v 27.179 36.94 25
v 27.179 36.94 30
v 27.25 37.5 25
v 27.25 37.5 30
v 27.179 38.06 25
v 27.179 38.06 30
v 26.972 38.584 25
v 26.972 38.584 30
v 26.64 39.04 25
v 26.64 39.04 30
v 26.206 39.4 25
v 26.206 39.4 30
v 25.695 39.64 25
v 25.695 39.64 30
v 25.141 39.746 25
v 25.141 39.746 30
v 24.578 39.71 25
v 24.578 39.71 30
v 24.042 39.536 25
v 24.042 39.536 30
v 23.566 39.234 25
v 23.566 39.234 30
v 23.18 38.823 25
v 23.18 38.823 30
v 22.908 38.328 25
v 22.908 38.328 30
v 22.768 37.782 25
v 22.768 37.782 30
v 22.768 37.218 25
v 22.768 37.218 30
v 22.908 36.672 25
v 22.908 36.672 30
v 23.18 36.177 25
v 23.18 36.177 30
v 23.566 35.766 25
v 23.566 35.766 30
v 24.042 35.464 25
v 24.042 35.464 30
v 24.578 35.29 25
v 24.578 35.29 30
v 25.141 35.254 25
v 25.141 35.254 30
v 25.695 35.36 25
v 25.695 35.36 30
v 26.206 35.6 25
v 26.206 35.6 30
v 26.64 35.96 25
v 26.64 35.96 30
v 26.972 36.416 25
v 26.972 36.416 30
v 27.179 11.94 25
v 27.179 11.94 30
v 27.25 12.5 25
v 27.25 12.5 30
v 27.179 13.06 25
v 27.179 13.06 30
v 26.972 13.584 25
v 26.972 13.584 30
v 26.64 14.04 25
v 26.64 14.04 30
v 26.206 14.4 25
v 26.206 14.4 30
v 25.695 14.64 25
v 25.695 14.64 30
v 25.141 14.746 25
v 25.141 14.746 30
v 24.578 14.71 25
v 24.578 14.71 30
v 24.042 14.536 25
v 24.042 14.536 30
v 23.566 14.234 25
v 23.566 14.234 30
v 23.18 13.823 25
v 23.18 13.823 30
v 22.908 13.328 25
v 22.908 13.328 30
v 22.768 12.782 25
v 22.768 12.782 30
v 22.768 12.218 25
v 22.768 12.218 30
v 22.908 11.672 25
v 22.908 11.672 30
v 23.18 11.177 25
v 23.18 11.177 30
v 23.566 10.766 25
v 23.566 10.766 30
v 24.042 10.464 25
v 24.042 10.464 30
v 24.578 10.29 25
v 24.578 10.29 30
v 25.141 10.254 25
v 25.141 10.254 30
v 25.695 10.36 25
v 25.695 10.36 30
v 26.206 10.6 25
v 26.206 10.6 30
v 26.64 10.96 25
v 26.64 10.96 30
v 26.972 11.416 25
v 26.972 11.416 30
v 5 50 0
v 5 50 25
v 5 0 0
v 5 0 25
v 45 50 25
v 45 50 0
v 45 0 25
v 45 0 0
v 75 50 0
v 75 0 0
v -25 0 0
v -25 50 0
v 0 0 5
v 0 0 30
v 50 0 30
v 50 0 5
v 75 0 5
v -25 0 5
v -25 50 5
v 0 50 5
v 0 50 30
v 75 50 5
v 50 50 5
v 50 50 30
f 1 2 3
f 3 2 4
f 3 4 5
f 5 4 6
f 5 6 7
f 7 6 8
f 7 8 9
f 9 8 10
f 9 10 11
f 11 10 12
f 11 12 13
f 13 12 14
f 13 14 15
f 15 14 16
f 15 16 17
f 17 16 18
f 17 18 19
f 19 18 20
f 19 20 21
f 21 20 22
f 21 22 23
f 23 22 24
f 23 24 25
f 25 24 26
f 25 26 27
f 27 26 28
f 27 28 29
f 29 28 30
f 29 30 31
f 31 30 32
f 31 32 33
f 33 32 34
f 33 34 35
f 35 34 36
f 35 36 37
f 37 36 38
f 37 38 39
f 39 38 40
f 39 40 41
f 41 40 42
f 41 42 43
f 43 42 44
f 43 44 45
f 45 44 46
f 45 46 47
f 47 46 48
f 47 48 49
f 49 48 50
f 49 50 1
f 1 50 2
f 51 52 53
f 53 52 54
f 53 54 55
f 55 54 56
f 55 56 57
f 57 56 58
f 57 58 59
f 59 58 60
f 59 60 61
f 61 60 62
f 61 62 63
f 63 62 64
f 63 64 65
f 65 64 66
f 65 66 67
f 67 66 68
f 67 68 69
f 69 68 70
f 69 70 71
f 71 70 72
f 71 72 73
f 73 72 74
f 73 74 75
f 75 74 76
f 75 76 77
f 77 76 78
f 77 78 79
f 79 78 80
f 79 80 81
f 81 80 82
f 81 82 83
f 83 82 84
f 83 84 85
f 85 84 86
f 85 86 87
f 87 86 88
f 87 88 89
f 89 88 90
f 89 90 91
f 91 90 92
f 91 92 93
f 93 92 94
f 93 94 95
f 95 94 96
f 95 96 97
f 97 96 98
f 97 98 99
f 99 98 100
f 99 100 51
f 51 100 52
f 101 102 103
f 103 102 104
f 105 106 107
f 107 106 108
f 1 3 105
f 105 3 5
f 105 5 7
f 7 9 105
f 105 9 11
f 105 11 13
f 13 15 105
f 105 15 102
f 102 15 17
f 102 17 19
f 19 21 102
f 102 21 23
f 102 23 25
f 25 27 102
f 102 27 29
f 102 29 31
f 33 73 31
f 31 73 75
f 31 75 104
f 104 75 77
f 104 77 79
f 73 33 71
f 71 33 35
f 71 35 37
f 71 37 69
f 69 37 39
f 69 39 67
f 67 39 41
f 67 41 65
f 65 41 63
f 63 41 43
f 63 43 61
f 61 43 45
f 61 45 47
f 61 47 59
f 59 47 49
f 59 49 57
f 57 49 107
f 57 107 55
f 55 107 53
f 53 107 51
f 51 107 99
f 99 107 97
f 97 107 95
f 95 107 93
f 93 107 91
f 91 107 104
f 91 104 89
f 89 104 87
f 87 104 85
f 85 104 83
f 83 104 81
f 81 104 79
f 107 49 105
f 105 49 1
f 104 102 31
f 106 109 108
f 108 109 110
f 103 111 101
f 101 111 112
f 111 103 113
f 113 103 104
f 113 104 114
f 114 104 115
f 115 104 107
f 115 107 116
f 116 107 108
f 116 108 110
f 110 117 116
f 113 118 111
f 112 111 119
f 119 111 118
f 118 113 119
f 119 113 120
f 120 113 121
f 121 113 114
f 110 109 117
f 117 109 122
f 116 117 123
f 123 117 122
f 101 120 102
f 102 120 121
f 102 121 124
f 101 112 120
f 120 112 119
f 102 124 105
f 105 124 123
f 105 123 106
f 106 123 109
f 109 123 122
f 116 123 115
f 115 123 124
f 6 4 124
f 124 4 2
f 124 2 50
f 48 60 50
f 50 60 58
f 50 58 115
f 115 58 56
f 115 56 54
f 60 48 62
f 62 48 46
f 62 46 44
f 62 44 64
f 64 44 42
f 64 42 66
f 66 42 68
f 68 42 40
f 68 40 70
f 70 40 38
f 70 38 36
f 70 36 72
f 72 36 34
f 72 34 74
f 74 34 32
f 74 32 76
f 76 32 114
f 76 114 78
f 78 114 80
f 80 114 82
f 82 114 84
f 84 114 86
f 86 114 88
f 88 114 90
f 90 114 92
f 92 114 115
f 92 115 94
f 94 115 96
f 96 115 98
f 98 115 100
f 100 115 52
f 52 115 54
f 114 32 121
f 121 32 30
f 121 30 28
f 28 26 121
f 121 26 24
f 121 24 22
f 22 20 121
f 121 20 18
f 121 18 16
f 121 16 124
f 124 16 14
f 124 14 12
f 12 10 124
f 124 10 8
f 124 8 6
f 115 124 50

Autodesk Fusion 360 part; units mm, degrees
sketch "Sketch9" plane through (0, 0, 0) normal (0, 0, 1) x (1, 0, 0)
  line L0 (0, 50) -> (50, 50)
  line L1 (50, 50) -> (50, 0)
  line L2 (50, 0) -> (0, 0)
  line L3 (0, 0) -> (0, 50)
  line L4 (-25, 50) -> (0, 50)
  line L5 (0, 50) -> (0, 0)
  line L6 (0, 0) -> (-25, 0)
  line L7 (-25, 0) -> (-25, 50)
  line L8 (50, 50) -> (75, 50)
  line L9 (75, 50) -> (75, 0)
  line L10 (75, 0) -> (50, 0)
  line L11 (50, 0) -> (50, 50)
  dimension "d34" = 50
  dimension "d35" = 50
  dimension "d36" = 25
  dimension "d37" = 50
extrude "Extrude5" add sketch "Sketch9" along normal blind 30 contours L0 L1 L2 L3 L5 L11
extrude "Extrude6" add sketch "Sketch9" along normal blind 5 contours L1 L8 L9 L10 L11
extrude "Extrude7" add sketch "Sketch9" along normal blind 5 contours L3 L4 L5 L6 L7
sketch "Sketch12" plane through (0, 0, 0) normal (0, 1, 0) x (1, 0, 0)
  line L0 (5, -25) -> (45, -25)
  line L1 (45, -25) -> (45, 0)
  line L2 (45, 0) -> (5, 0)
  line L3 (5, 0) -> (5, -25)
  line L4 (50, 0) -> (0, 0)
  line L5 (75, 0) -> (-25, 0)
  line L6 (-25, 0) -> (75, 0)
  line L7 (0, -30) -> (50, -30)
  line L8 (0, -5) -> (0, -30)
  line L9 (50, -5) -> (50, -30)
  dimension "d44" = 5
  dimension "d45" = 5
  dimension "d46" = 5
extrude "Extrude8" cut sketch "Sketch12" along normal through all
sketch "Sketch13" plane through (0, 0, 30) normal (0, 0, 1) x (-1, 0, 0)
  line L0 (0, -50) -> (0, 0)
  line L1 (0, 0) -> (-50, 0)
  line L2 (-50, 0) -> (-50, -50)
  line L3 (-50, -50) -> (0, -50)
  circle A0 centre (-25, -12.5) radius 2.25
  circle A1 centre (-25, -37.5) radius 2.25
  dimension "d48" = 4.5
  dimension "d49" = 4.5
  dimension "d50" = 25
  dimension "d51" = 25
  dimension "d52" = 12.5
extrude "Extrude9" cut sketch "Sketch13" against normal through all contours A0
extrude "Extrude10" cut sketch "Sketch13" against normal through all contours A1
